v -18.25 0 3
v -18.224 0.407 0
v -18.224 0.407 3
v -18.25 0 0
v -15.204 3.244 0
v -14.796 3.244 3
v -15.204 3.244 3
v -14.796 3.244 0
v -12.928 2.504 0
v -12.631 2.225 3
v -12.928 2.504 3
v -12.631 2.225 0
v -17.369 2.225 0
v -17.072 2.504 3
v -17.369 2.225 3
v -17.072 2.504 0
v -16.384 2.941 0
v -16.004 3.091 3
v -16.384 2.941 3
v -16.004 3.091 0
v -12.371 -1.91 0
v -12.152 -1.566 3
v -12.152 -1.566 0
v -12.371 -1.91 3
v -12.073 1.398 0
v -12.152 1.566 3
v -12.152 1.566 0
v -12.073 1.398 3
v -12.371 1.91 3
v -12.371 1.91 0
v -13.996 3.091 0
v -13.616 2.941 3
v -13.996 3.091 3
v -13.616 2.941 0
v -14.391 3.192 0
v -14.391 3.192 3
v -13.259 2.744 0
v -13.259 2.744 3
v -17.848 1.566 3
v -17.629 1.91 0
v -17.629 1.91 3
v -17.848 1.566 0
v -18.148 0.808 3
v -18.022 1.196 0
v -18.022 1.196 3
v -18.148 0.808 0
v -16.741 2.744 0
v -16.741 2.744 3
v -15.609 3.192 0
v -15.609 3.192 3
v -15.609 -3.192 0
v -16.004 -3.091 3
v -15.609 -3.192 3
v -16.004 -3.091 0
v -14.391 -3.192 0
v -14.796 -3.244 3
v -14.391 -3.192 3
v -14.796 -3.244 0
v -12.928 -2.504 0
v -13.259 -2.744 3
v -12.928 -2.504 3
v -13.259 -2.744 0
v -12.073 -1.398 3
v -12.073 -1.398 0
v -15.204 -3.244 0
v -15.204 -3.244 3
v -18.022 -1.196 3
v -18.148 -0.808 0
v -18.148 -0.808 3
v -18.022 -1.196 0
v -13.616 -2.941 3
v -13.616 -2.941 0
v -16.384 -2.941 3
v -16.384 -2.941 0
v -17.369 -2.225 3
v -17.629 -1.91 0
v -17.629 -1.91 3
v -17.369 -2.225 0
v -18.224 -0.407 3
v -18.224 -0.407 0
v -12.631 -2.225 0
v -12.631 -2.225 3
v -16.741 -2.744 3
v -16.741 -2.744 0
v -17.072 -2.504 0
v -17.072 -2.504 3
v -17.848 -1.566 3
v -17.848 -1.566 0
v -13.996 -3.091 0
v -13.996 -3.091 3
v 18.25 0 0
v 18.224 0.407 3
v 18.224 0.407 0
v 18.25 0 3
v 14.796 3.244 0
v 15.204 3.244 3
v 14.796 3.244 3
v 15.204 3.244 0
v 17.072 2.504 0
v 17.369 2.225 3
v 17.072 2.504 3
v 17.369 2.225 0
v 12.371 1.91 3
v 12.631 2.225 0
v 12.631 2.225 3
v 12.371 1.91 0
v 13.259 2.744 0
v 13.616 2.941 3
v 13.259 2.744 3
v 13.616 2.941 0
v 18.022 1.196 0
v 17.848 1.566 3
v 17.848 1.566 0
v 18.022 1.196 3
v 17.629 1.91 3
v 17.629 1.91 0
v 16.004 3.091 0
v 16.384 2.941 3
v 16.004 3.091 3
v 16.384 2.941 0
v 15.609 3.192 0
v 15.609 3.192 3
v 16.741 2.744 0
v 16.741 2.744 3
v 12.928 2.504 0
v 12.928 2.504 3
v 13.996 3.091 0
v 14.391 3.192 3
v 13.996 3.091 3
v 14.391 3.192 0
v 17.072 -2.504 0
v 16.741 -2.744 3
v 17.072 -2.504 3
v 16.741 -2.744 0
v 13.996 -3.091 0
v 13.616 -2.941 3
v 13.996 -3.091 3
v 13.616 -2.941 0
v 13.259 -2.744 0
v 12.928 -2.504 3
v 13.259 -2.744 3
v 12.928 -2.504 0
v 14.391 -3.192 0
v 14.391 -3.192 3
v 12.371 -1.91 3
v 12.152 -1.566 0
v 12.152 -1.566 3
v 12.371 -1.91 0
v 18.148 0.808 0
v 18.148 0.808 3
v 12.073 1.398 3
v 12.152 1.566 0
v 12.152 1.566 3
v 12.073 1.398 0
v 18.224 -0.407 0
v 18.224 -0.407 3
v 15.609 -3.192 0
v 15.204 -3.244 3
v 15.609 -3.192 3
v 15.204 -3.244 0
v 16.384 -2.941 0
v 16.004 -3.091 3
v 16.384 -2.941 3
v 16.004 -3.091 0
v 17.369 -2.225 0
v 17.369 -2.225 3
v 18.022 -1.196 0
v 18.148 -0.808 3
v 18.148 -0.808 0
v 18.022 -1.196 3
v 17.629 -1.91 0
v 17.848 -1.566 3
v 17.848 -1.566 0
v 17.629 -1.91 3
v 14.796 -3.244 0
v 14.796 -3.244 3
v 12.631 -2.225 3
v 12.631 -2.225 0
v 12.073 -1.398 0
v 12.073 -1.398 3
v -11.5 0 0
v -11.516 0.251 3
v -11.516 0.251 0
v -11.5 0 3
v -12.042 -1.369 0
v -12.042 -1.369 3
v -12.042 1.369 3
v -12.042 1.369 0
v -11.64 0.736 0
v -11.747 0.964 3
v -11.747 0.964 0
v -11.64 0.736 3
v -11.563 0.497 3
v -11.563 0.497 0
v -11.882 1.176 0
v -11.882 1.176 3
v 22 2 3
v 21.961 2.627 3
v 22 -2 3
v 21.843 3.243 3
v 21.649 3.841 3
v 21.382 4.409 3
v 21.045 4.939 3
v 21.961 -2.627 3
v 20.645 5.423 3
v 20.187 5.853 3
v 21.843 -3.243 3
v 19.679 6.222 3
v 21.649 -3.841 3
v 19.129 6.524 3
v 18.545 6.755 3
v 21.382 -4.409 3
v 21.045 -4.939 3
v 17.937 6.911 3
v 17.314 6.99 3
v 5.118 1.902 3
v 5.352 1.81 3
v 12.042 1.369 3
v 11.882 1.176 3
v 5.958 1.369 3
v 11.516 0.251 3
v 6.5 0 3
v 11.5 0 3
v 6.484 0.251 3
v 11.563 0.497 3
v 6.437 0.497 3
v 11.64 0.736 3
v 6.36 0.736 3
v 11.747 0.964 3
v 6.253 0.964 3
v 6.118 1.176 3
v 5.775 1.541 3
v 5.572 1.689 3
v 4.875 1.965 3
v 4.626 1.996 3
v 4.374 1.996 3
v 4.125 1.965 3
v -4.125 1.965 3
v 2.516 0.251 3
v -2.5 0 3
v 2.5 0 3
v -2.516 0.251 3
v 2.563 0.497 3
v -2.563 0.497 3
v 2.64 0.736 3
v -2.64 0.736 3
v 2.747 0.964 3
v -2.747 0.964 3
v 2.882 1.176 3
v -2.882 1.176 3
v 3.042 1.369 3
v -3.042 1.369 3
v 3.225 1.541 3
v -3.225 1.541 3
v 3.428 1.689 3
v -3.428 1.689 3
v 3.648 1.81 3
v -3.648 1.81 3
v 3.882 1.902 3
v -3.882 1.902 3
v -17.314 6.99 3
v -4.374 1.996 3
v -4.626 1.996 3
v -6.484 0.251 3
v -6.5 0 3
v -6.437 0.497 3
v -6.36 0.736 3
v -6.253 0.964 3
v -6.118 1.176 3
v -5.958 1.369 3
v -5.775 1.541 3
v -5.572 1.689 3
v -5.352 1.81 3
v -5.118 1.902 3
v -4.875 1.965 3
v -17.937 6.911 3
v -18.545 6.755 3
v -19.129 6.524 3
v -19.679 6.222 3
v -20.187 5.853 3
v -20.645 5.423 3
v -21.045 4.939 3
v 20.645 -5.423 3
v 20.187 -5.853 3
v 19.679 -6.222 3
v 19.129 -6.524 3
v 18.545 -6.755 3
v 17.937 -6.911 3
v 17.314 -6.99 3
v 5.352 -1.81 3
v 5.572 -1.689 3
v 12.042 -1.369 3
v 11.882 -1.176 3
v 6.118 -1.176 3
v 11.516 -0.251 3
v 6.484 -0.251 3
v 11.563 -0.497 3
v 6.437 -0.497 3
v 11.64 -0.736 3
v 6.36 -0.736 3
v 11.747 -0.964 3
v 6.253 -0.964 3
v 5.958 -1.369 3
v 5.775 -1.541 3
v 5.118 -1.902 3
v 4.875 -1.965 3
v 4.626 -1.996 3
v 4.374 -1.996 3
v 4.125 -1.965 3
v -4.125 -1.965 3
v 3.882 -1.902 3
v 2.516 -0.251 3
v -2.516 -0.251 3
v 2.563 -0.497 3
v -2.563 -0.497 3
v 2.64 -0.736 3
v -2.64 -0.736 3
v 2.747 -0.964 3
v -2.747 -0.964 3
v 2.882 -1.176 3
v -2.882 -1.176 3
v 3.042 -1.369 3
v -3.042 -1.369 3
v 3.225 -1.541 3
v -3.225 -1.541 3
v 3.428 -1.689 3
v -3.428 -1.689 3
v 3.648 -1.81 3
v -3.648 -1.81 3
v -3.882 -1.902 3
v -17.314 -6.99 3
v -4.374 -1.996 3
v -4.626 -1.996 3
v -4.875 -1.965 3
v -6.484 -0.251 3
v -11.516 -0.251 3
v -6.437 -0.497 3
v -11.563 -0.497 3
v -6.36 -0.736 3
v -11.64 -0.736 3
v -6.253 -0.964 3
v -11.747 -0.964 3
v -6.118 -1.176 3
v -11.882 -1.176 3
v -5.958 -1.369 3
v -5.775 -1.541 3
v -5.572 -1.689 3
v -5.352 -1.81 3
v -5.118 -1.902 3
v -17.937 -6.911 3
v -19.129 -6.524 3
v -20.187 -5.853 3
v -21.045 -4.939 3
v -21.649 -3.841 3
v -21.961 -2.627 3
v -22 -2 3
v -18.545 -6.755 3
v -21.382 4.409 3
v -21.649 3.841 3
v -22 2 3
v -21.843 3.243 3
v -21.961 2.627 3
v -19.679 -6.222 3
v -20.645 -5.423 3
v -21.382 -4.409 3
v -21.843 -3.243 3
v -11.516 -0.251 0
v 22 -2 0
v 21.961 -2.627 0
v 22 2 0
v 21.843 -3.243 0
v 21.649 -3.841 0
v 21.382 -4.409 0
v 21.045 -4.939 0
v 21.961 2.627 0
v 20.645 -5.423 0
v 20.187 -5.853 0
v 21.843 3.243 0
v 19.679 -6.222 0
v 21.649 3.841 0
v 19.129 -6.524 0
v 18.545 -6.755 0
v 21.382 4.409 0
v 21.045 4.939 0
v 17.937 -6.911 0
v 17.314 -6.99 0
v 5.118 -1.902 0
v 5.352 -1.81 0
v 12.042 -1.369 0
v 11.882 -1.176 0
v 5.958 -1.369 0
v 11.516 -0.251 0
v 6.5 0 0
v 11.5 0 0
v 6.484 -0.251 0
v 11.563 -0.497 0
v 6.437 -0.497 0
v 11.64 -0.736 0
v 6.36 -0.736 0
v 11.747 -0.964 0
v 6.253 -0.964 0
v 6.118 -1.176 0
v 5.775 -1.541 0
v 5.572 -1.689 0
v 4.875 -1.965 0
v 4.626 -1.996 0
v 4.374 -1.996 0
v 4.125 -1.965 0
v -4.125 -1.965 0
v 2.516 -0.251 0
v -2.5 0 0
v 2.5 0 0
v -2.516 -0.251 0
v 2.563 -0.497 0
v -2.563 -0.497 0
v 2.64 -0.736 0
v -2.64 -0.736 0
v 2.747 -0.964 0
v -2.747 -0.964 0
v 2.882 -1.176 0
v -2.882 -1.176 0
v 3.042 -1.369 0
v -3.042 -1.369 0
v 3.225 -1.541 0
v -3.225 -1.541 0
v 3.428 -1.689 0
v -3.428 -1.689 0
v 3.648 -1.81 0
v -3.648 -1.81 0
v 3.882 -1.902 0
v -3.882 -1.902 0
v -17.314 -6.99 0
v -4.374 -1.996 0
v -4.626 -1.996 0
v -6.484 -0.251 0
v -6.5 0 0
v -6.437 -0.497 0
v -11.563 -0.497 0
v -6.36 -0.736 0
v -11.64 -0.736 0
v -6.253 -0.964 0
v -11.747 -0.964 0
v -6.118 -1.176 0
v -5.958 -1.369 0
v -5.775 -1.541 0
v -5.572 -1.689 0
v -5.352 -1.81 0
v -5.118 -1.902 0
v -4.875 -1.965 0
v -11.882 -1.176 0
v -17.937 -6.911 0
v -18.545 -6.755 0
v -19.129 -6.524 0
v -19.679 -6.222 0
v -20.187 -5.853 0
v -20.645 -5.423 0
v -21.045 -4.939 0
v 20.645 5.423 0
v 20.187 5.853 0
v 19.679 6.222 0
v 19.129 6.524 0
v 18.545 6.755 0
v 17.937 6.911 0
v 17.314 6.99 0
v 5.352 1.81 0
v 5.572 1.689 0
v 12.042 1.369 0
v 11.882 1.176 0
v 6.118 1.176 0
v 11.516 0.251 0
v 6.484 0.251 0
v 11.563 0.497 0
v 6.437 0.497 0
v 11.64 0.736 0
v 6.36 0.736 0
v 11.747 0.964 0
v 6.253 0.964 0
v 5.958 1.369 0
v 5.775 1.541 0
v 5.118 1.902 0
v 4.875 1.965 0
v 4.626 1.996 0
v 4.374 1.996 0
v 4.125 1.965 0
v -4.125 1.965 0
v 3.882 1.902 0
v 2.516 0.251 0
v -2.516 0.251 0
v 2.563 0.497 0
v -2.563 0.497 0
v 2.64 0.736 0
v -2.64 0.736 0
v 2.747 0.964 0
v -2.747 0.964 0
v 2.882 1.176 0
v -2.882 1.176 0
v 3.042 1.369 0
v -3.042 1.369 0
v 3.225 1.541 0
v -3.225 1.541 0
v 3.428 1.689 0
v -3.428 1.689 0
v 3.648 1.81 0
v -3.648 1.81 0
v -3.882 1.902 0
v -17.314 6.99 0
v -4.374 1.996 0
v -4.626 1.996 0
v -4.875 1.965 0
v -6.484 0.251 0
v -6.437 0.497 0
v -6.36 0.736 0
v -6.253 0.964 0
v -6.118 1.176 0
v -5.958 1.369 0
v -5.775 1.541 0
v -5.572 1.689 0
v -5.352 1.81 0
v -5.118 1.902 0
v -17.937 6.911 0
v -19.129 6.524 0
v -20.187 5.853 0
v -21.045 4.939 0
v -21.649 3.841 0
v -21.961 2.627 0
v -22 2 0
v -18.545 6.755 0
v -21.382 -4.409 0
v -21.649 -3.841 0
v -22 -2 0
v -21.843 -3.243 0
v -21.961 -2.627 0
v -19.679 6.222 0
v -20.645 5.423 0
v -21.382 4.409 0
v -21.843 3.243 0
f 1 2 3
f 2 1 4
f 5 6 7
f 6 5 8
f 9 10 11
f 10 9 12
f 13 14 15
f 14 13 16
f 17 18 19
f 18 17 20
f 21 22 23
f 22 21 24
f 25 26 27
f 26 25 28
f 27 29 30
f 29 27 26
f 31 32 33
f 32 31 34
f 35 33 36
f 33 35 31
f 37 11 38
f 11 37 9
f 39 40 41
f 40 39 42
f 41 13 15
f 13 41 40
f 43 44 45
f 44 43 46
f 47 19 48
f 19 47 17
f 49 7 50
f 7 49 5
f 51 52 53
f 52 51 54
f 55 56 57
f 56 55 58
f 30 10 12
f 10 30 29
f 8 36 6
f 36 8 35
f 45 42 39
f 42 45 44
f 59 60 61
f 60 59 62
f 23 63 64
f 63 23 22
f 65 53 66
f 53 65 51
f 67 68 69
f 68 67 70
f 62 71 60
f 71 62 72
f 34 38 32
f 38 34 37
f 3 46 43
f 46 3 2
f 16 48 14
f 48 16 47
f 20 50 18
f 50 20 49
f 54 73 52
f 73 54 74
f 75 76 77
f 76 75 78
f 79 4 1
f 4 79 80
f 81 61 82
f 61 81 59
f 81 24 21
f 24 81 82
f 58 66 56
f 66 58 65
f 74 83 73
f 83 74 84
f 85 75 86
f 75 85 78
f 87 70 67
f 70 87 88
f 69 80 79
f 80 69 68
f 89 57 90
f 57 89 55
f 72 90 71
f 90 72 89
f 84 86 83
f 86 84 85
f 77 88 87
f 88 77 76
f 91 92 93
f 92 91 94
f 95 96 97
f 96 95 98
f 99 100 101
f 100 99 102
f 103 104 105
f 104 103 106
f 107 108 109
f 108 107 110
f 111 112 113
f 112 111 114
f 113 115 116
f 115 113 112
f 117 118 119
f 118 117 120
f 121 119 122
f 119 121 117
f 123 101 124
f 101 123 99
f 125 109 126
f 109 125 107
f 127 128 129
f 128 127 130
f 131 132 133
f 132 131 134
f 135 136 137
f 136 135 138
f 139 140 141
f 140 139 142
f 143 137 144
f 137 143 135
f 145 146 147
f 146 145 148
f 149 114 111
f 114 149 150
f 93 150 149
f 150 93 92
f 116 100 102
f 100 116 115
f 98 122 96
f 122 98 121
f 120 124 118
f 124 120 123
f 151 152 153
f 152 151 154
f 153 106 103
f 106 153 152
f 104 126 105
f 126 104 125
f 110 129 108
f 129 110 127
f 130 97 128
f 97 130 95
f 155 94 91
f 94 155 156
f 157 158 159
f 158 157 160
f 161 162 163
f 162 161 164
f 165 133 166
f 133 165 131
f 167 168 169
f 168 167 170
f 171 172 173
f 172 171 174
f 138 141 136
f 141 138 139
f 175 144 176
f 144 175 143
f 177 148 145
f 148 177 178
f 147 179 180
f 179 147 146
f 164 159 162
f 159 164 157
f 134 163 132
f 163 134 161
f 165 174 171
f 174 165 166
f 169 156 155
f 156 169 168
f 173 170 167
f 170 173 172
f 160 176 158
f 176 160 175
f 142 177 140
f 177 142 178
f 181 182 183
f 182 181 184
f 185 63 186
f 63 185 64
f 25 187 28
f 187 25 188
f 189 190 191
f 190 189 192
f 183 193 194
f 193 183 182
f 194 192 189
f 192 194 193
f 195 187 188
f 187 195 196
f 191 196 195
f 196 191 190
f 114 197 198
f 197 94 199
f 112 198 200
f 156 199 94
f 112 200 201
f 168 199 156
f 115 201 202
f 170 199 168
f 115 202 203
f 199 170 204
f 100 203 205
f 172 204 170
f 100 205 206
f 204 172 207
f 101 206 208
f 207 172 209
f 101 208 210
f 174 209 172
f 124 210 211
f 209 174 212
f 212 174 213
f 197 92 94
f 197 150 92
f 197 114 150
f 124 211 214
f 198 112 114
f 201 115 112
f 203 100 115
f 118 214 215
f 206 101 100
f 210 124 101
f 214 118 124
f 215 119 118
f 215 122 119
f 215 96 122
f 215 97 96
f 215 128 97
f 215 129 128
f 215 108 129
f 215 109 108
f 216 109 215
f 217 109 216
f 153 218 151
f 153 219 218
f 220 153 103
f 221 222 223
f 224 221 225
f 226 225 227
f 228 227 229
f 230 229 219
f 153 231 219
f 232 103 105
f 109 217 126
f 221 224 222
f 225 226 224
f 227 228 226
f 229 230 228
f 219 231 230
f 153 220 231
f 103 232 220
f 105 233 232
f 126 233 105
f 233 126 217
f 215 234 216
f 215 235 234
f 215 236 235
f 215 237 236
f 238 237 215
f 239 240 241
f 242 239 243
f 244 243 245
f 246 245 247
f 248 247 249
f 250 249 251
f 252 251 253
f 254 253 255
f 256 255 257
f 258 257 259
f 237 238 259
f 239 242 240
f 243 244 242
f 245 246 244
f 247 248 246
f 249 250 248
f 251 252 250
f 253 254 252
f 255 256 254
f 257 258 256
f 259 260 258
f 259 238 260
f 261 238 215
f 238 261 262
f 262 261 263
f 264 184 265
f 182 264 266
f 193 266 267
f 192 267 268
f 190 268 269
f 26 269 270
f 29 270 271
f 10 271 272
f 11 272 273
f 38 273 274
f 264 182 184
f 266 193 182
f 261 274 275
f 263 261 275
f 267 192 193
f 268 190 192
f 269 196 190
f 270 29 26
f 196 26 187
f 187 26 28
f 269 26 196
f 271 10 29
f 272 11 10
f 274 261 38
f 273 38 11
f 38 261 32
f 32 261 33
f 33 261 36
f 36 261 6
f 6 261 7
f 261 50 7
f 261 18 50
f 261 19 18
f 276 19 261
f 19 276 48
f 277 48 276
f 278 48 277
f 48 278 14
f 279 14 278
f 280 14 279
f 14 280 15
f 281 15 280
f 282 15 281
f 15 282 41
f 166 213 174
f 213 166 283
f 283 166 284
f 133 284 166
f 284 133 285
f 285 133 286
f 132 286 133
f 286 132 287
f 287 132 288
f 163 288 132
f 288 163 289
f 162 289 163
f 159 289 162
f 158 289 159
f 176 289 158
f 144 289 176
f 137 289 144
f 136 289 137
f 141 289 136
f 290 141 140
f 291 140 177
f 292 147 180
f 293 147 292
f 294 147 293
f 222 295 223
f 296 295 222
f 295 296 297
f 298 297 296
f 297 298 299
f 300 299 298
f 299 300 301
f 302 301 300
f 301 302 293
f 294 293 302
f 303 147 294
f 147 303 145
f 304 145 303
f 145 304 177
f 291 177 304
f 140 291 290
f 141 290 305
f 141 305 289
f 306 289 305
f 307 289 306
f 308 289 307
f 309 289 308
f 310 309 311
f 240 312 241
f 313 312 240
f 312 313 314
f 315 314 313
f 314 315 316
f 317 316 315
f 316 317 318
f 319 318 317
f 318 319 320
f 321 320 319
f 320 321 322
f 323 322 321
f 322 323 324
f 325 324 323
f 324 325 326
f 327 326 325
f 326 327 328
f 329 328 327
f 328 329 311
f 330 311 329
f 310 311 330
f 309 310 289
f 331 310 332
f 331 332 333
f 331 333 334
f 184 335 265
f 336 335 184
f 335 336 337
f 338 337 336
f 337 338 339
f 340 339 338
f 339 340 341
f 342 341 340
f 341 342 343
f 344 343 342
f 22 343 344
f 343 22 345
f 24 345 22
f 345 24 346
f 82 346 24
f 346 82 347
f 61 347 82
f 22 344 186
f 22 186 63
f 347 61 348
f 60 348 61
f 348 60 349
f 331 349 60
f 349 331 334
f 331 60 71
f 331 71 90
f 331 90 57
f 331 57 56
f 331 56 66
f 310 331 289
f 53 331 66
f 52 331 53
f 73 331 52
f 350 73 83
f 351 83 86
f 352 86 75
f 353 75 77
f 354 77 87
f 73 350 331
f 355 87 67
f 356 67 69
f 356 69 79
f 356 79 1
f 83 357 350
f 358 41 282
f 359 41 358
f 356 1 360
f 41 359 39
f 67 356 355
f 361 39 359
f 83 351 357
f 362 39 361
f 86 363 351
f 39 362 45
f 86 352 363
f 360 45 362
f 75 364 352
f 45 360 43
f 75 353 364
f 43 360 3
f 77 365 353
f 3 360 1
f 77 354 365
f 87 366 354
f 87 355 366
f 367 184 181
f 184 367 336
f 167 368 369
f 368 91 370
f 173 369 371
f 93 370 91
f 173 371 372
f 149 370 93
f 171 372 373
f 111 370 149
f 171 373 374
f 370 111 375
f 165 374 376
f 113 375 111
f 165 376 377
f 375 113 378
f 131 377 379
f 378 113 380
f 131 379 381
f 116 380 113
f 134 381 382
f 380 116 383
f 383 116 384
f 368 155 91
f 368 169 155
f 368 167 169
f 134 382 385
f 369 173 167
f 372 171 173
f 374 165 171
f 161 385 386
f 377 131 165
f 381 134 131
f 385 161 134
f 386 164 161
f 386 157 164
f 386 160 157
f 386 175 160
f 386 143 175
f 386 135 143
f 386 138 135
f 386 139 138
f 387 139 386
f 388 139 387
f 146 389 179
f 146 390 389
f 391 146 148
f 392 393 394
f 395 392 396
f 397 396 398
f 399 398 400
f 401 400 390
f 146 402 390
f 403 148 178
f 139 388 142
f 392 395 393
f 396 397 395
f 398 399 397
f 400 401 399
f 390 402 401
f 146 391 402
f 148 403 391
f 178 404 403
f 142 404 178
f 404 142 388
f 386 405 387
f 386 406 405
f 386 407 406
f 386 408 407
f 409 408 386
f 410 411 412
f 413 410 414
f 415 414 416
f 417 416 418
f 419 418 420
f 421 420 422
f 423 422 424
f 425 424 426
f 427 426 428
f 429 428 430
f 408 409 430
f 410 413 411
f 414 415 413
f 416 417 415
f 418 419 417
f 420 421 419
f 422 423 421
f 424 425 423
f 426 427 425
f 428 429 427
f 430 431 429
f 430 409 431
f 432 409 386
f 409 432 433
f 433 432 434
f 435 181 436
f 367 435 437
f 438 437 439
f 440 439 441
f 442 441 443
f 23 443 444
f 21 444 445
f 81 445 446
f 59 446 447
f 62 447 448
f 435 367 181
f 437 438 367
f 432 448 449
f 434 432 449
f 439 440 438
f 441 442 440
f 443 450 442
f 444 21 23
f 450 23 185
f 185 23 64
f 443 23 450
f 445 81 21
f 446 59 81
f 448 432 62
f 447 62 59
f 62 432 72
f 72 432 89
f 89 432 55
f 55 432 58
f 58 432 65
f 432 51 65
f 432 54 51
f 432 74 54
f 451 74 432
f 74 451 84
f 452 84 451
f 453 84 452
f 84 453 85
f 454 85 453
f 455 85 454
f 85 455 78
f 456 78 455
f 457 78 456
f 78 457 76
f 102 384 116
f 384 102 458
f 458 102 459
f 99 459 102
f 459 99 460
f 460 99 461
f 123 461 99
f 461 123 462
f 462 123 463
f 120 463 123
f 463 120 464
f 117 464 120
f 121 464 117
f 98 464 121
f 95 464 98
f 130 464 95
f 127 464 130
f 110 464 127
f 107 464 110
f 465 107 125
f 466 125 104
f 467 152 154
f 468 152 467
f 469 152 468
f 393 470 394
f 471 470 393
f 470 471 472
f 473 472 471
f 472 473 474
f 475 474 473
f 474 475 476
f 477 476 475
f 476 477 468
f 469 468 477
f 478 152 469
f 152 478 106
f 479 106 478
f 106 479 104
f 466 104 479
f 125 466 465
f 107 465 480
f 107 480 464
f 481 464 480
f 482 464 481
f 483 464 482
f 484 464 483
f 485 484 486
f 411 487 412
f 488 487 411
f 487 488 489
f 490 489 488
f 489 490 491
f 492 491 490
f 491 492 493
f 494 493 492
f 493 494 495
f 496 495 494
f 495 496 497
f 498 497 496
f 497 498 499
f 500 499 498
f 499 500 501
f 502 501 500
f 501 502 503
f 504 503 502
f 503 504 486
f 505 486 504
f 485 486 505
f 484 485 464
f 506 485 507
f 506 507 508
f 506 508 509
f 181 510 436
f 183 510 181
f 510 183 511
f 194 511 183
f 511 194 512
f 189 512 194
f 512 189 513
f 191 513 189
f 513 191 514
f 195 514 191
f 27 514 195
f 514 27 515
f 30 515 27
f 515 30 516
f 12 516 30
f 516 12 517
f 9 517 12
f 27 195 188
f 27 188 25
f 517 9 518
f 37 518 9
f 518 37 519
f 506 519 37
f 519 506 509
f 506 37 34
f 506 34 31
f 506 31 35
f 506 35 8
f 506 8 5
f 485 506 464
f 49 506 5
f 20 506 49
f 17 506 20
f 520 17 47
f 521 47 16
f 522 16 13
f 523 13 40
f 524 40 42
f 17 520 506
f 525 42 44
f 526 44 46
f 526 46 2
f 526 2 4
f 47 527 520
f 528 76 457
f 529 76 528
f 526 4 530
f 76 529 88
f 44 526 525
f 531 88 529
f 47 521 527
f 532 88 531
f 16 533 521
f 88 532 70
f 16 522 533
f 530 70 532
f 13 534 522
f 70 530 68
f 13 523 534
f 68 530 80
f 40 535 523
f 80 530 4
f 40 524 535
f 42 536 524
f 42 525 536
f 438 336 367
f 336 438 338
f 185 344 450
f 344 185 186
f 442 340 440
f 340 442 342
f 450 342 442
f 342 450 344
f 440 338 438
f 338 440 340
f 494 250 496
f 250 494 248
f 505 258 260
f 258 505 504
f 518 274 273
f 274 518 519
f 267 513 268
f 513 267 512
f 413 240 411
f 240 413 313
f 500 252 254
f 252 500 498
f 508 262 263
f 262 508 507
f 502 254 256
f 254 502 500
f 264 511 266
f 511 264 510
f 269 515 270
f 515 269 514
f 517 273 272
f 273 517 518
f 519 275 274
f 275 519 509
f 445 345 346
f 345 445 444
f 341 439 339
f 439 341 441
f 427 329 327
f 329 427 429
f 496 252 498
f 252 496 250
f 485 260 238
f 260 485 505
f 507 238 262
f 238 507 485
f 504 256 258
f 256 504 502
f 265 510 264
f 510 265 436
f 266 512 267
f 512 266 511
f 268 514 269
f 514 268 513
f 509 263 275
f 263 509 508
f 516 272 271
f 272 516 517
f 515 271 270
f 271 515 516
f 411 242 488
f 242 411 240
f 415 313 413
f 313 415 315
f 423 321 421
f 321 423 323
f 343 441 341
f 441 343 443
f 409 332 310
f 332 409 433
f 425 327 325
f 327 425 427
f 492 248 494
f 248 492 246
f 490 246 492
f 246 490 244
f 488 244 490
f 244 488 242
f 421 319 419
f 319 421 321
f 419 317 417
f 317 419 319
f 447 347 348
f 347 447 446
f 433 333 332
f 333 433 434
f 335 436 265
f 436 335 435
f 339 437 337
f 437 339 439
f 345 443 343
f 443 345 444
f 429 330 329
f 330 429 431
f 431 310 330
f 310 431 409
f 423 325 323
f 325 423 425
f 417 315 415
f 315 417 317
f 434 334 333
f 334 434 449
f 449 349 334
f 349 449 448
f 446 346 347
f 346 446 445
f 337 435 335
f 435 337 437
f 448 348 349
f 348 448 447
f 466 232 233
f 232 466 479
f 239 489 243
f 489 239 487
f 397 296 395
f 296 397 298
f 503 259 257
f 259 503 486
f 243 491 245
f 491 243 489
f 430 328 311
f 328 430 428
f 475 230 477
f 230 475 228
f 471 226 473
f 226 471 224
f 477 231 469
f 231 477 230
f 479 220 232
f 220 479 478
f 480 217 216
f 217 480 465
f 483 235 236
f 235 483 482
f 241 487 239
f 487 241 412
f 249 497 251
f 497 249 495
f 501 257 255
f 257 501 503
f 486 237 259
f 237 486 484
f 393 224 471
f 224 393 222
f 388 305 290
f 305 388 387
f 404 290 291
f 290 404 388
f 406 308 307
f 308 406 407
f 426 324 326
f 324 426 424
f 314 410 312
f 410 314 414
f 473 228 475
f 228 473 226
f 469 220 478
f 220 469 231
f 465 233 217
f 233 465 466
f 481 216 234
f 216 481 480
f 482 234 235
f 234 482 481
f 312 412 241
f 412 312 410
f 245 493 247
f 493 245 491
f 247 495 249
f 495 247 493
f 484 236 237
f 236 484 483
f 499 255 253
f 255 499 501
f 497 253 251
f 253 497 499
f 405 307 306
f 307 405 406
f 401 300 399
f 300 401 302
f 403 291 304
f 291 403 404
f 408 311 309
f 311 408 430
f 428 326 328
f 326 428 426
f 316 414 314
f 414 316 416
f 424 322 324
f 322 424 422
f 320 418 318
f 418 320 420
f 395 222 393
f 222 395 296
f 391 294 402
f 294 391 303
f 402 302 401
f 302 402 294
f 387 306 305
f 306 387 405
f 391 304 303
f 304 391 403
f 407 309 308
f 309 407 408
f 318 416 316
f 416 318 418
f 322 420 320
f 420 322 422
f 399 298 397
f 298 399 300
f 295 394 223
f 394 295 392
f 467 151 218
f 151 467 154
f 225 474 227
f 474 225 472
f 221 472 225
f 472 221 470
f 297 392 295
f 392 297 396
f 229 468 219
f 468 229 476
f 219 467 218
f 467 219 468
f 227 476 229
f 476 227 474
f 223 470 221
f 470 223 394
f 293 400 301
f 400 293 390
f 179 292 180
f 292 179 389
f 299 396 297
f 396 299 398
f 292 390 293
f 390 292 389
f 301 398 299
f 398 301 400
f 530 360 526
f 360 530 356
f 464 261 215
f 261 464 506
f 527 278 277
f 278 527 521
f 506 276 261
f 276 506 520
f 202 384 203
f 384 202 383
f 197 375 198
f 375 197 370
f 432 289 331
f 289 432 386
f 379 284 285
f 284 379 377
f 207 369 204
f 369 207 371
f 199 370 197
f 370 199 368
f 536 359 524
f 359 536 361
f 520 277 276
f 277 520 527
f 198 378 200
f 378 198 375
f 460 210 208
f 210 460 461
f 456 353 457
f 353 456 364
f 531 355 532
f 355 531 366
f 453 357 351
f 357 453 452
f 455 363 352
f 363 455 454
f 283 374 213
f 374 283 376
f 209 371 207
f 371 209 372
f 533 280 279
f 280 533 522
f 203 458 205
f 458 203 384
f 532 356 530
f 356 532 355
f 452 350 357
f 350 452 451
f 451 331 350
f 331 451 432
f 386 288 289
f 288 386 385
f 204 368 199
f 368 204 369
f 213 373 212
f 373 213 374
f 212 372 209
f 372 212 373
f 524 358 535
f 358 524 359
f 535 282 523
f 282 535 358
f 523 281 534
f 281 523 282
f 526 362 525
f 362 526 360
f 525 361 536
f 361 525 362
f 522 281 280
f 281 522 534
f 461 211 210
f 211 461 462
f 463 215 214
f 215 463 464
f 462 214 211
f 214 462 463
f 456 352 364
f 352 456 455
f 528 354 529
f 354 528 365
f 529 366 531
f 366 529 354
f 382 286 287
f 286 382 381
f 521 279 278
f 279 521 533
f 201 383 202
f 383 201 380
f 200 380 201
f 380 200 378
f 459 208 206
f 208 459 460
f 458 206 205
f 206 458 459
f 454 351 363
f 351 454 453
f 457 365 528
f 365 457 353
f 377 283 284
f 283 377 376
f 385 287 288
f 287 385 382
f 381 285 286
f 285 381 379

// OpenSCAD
$fn = 50;


difference() {
	union() {
		hull() {
			translate(v = [-17.0000000000, 2.0000000000, 0]) {
				cylinder(h = 3, r = 5);
			}
			translate(v = [17.0000000000, 2.0000000000, 0]) {
				cylinder(h = 3, r = 5);
			}
			translate(v = [-17.0000000000, -2.0000000000, 0]) {
				cylinder(h = 3, r = 5);
			}
			translate(v = [17.0000000000, -2.0000000000, 0]) {
				cylinder(h = 3, r = 5);
			}
		}
	}
	union() {
		#translate(v = [-15.0000000000, 0.0000000000, -100.0000000000]) {
			cylinder(h = 200, r = 3.2500000000);
		}
		#translate(v = [-15.0000000000, 0.0000000000, -100.0000000000]) {
			cylinder(h = 200, r = 3.2500000000);
		}
		#translate(v = [15.0000000000, 0.0000000000, -100.0000000000]) {
			cylinder(h = 200, r = 3.2500000000);
		}
		#translate(v = [15.0000000000, 0.0000000000, -100.0000000000]) {
			cylinder(h = 200, r = 3.2500000000);
		}
		#translate(v = [-13.5000000000, 0, 0]) {
			cylinder(h = 3, r = 2.0000000000);
		}
		#translate(v = [-4.5000000000, 0, 0]) {
			cylinder(h = 3, r = 2.0000000000);
		}
		#translate(v = [4.5000000000, 0, 0]) {
			cylinder(h = 3, r = 2.0000000000);
		}
		#translate(v = [13.5000000000, 0, 0]) {
			cylinder(h = 3, r = 2.0000000000);
		}
	}
}
